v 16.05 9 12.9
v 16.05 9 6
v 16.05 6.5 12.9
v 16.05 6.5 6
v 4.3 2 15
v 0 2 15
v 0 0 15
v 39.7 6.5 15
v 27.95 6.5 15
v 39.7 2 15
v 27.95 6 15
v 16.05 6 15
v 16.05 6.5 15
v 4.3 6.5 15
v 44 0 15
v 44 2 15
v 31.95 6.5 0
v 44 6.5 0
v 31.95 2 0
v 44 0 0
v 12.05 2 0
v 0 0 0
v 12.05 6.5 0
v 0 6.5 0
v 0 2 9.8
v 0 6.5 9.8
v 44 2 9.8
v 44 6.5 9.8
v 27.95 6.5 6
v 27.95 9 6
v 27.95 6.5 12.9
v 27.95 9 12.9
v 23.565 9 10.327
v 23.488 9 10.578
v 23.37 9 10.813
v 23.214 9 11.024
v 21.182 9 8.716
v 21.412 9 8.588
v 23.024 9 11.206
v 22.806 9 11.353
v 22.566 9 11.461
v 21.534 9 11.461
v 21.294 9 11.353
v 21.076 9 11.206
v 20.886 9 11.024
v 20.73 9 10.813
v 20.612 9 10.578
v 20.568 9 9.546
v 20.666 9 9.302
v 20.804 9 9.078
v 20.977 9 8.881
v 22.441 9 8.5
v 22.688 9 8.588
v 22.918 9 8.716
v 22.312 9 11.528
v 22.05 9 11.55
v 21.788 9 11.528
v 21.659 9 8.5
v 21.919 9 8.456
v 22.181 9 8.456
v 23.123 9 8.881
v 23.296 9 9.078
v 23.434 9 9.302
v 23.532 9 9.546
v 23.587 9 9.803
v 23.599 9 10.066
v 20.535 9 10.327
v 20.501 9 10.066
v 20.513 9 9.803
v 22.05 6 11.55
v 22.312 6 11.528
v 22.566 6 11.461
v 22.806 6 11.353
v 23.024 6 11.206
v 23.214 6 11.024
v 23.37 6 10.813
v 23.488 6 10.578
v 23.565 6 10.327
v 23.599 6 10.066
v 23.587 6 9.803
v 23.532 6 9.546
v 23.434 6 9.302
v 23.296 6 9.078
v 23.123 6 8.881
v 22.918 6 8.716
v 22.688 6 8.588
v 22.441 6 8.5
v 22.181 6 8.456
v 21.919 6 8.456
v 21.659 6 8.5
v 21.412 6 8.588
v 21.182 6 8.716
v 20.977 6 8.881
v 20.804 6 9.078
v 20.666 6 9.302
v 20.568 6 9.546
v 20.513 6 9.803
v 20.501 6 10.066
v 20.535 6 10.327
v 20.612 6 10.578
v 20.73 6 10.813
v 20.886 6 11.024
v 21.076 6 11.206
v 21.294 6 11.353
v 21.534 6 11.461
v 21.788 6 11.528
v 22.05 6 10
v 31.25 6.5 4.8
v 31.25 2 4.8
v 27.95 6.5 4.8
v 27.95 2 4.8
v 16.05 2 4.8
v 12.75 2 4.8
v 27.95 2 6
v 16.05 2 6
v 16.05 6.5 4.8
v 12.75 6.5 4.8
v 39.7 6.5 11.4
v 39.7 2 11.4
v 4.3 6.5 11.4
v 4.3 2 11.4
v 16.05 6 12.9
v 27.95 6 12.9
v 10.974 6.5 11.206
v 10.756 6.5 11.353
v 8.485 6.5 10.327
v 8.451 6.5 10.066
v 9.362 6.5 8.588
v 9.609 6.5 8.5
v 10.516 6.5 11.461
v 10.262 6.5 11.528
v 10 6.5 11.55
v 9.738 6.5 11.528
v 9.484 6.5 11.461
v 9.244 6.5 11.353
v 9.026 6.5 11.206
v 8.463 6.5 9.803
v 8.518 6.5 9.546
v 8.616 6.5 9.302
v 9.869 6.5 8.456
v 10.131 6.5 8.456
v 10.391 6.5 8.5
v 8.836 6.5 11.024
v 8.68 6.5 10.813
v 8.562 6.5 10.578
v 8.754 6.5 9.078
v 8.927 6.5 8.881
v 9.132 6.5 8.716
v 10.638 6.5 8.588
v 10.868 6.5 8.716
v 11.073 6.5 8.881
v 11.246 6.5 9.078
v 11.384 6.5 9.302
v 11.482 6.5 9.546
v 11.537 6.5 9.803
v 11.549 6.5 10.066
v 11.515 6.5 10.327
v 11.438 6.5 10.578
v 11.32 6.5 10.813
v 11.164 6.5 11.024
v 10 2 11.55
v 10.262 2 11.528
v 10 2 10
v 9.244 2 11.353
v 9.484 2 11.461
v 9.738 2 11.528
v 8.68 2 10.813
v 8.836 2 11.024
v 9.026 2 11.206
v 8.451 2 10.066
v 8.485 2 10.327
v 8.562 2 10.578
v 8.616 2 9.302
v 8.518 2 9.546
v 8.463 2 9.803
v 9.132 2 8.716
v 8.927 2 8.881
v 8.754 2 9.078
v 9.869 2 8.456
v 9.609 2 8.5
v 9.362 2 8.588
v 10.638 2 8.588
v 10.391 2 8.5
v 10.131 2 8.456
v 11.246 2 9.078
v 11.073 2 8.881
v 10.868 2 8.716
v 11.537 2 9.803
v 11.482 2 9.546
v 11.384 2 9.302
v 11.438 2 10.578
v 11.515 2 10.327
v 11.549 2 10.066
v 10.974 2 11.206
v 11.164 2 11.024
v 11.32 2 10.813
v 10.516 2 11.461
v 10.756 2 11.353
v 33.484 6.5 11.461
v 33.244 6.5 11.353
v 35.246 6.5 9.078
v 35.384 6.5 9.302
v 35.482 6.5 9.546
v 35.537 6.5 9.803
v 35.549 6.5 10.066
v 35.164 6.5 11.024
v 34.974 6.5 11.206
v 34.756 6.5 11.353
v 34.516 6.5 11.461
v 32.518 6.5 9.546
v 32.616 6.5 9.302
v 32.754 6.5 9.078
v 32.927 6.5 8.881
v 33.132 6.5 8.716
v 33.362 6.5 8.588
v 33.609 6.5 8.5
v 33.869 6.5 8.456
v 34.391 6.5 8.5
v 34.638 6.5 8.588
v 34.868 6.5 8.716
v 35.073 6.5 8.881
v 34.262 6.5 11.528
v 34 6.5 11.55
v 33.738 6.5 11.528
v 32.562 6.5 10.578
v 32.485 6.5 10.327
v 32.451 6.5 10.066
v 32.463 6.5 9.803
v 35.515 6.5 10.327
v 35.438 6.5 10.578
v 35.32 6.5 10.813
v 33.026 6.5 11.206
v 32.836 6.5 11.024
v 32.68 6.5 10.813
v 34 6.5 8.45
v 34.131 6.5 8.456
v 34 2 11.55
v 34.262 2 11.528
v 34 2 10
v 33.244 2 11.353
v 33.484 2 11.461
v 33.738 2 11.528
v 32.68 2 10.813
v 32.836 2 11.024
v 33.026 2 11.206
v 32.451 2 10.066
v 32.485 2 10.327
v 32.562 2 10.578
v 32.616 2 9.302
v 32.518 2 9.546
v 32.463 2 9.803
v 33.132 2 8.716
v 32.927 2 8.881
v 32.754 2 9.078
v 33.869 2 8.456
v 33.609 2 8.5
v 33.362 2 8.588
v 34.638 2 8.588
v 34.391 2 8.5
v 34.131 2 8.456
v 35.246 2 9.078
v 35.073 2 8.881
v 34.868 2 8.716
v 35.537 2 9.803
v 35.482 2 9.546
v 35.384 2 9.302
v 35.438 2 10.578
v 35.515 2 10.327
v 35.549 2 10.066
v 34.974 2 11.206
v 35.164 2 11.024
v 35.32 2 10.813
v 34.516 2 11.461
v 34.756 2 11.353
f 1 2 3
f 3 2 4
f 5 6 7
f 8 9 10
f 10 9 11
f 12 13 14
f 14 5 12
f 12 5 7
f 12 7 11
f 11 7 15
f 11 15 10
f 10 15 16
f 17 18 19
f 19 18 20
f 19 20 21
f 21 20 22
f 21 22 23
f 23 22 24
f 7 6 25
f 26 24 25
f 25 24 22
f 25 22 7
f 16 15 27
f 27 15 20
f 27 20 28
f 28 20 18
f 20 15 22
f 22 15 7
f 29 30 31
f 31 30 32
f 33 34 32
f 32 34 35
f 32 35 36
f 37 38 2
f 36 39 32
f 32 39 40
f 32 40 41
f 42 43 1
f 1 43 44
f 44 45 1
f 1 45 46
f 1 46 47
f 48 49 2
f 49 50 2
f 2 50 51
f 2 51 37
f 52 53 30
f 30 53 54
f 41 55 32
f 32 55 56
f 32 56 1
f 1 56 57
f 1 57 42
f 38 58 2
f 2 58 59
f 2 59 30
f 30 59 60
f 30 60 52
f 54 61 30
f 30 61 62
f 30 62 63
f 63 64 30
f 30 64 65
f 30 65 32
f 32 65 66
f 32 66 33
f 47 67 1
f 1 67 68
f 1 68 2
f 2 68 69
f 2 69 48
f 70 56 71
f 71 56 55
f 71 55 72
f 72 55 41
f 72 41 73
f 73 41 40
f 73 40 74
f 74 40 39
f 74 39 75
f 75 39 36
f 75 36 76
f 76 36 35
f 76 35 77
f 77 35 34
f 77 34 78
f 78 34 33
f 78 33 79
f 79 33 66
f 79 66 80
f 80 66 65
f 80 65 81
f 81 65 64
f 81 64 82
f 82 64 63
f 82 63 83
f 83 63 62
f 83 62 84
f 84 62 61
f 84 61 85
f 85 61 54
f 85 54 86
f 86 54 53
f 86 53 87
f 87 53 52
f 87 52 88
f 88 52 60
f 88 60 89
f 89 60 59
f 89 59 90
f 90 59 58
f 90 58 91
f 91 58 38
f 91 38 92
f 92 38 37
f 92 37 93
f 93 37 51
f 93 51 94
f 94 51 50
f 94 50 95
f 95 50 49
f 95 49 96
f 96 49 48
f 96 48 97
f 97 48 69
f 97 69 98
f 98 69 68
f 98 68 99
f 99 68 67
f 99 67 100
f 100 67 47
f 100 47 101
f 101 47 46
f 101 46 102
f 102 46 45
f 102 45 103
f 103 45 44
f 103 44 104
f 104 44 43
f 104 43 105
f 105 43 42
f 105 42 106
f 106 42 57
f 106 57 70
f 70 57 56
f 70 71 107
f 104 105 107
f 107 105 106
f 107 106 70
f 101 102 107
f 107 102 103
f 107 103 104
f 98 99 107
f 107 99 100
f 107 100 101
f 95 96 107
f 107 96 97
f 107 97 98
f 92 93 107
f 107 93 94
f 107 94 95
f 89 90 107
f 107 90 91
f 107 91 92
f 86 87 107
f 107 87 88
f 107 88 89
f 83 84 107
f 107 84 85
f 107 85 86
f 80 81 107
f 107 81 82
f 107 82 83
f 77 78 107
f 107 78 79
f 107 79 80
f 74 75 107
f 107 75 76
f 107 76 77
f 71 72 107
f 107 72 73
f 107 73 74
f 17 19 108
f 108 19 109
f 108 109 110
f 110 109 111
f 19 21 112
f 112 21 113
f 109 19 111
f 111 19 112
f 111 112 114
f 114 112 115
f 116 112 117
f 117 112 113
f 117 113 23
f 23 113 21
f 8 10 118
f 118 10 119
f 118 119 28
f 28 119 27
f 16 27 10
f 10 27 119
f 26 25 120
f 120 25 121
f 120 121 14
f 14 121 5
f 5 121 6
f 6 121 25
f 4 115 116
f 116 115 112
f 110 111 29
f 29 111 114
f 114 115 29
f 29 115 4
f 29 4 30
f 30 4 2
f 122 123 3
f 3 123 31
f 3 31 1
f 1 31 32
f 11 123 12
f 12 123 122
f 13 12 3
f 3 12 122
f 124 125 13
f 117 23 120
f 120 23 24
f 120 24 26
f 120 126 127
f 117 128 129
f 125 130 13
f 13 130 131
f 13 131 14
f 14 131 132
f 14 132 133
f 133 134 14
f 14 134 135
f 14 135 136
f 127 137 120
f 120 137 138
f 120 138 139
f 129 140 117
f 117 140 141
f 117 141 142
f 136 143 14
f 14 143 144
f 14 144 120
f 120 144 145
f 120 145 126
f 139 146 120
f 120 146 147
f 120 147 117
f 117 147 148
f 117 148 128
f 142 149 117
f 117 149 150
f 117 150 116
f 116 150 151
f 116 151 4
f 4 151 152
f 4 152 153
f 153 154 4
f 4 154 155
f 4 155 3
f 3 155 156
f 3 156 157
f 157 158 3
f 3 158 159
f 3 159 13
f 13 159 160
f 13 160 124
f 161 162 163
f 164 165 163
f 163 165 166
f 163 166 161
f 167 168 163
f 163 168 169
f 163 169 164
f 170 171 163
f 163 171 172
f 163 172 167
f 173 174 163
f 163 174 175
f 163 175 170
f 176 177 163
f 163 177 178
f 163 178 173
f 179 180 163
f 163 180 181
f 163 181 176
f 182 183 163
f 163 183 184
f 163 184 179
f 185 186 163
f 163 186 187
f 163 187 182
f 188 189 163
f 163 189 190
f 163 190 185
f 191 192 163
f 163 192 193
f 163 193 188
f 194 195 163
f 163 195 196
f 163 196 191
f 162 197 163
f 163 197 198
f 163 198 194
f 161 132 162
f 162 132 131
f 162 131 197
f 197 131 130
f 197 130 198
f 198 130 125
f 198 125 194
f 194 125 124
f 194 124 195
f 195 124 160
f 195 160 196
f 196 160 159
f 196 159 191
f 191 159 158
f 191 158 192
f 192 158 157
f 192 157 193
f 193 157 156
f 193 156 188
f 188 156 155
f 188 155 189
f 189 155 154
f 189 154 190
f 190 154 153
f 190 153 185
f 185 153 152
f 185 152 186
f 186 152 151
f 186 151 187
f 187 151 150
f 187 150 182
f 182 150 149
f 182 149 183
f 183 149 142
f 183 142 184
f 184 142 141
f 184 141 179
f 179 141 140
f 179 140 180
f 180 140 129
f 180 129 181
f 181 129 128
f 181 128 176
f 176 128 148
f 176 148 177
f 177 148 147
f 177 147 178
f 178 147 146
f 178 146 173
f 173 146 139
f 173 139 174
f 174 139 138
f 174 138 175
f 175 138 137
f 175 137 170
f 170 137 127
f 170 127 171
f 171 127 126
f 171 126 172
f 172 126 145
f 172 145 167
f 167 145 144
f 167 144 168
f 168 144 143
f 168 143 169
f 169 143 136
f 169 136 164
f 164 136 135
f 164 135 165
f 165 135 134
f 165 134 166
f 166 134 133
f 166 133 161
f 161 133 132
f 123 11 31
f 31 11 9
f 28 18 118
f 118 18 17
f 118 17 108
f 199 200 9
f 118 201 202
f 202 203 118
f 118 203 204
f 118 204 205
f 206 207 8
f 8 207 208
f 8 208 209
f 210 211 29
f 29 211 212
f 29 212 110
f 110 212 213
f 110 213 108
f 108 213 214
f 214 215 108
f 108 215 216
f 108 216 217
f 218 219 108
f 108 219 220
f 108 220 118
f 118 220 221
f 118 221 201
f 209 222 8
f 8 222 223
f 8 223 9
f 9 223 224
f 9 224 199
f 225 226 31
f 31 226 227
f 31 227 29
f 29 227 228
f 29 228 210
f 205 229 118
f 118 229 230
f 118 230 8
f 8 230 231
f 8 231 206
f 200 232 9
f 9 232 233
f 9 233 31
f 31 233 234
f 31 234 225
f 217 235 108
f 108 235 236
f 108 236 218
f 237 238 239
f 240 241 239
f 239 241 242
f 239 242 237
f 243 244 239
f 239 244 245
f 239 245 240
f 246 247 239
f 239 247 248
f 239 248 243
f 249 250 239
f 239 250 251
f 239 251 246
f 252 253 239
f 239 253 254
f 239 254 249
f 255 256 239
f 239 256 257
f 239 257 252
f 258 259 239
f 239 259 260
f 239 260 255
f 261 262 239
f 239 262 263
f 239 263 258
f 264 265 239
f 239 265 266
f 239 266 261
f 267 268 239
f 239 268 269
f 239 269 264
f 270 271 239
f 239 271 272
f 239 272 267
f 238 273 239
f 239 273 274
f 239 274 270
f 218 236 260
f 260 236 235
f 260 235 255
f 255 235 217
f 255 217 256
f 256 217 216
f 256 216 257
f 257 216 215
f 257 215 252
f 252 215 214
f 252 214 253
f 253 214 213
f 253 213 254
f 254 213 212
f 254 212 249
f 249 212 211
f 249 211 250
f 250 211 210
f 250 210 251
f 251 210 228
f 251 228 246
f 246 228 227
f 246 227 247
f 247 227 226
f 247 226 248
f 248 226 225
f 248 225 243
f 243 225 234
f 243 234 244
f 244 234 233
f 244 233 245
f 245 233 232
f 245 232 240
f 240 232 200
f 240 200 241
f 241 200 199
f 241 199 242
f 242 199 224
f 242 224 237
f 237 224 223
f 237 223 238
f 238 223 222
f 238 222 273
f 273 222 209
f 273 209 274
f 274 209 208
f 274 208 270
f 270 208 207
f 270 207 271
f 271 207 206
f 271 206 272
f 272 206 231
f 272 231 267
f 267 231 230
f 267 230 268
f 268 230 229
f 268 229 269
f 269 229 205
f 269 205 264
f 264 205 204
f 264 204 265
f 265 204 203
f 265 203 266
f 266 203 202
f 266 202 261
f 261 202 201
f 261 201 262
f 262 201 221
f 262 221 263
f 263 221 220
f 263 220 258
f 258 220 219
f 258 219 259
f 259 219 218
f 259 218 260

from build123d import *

# Parameters (mm, degrees)
SKETCH1_W           = 44
SKETCH1_H           = 15
BOSS_EXTRUDE1_DEPTH = 5
SKETCH2_W           = 11.9
SKETCH2_H           = 15
BOSS_EXTRUDE2_DEPTH = 4
SKETCH3_R           = 1.55
CUT_EXTRUDE1_DEPTH  = 3
SKETCH4_R           = 1.55
CUT_EXTRUDE2_DEPTH  = 3
CUT_EXTRUDE3_DEPTH  = 3
SKETCH7_W           = 11.9
SKETCH7_H           = 6
CUT_EXTRUDE4_DEPTH  = 7
SKETCH8_W           = 11.9
SKETCH8_H           = 2.1
CUT_EXTRUDE5_DEPTH  = 3
SKETCH9_R           = 1.55
BOSS_EXTRUDE4_DEPTH = 1.5


with BuildPart() as part:
    # Sketch1 → Boss-Extrude1 (new body)
    with BuildSketch(Plane(origin=(0, 0, 0), x_dir=(1, 0, 0), z_dir=(0, 1, 0))):
        with Locations((22, -7.5)):
            Rectangle(SKETCH1_W, SKETCH1_H)
    extrude(amount=BOSS_EXTRUDE1_DEPTH)

    # Sketch2 → Boss-Extrude2 (add)
    with BuildSketch(Plane(origin=(0, 5, 0), x_dir=(1, 0, 0), z_dir=(0, 1, 0))):
        with Locations((22, -7.5)):
            Rectangle(SKETCH2_W, SKETCH2_H)
    extrude(amount=BOSS_EXTRUDE2_DEPTH)

    # Sketch3 → Cut-Extrude1 (cut)
    with BuildSketch(Plane(origin=(0, 5, 0), x_dir=(1, 0, 0), z_dir=(0, 1, 0))):
        with Locations((10, -10)):
            Circle(SKETCH3_R)
        with Locations((34, -10)):
            Circle(SKETCH3_R)
    extrude(amount=-CUT_EXTRUDE1_DEPTH, mode=Mode.SUBTRACT)

    # Sketch4 → Cut-Extrude2 (cut)
    with BuildSketch(Plane(origin=(0, 9, 0), x_dir=(1, 0, 0), z_dir=(0, 1, 0))):
        with Locations((22.05, -10)):
            Circle(SKETCH4_R)
    extrude(amount=-CUT_EXTRUDE2_DEPTH, mode=Mode.SUBTRACT)

    # Sketch6 → Cut-Extrude3 (cut)
    with BuildSketch(Plane(origin=(0, 5, 0), x_dir=(1, 0, 0), z_dir=(0, 1, 0))):
        Polygon((16.05, -4.8), (12.75, -4.8), (12.05, 0), (16.05, 0), align=None)
        Polygon((0, -15), (4.3, -15), (4.3, -11.4), (0, -9.8), align=None)
        Polygon((39.7, -11.4), (44, -9.8), (44, -15), (39.7, -15), align=None)
        Polygon((31.95, 0), (27.95, 0), (27.95, -4.8), (31.25, -4.8), align=None)
    extrude(amount=-CUT_EXTRUDE3_DEPTH, mode=Mode.SUBTRACT)

    # Sketch7 → Cut-Extrude4 (cut)
    with BuildSketch(Plane(origin=(0, 9, 0), x_dir=(1, 0, 0), z_dir=(0, 1, 0))):
        with Locations((22, -3)):
            Rectangle(SKETCH7_W, SKETCH7_H)
    extrude(amount=-CUT_EXTRUDE4_DEPTH, mode=Mode.SUBTRACT)

    # Sketch8 → Cut-Extrude5 (cut)
    with BuildSketch(Plane(origin=(0, 9, 0), x_dir=(1, 0, 0), z_dir=(0, 1, 0))):
        with Locations((22, -13.95)):
            Rectangle(SKETCH8_W, SKETCH8_H)
    extrude(amount=-CUT_EXTRUDE5_DEPTH, mode=Mode.SUBTRACT)

    # Sketch9 → Boss-Extrude4 (add)
    with BuildSketch(Plane(origin=(0, 5, 0), x_dir=(1, 0, 0), z_dir=(0, 1, 0))):
        Polygon((0, 0), (12.05, 0), (12.75, -4.8), (16.05, -4.8), (16.05, -15), (4.3, -15), (4.3, -11.4), (0, -9.8), align=None)
        with Locations((10, -10)):
            Circle(SKETCH9_R, mode=Mode.SUBTRACT)
        Polygon((39.7, -11.4), (44, -9.8), (44, 0), (31.95, 0), (31.25, -4.8), (27.95, -4.8), (27.95, -15), (39.7, -15), align=None)
        with Locations((34, -10)):
            Circle(SKETCH9_R, mode=Mode.SUBTRACT)
    extrude(amount=BOSS_EXTRUDE4_DEPTH)


solid = part.part
